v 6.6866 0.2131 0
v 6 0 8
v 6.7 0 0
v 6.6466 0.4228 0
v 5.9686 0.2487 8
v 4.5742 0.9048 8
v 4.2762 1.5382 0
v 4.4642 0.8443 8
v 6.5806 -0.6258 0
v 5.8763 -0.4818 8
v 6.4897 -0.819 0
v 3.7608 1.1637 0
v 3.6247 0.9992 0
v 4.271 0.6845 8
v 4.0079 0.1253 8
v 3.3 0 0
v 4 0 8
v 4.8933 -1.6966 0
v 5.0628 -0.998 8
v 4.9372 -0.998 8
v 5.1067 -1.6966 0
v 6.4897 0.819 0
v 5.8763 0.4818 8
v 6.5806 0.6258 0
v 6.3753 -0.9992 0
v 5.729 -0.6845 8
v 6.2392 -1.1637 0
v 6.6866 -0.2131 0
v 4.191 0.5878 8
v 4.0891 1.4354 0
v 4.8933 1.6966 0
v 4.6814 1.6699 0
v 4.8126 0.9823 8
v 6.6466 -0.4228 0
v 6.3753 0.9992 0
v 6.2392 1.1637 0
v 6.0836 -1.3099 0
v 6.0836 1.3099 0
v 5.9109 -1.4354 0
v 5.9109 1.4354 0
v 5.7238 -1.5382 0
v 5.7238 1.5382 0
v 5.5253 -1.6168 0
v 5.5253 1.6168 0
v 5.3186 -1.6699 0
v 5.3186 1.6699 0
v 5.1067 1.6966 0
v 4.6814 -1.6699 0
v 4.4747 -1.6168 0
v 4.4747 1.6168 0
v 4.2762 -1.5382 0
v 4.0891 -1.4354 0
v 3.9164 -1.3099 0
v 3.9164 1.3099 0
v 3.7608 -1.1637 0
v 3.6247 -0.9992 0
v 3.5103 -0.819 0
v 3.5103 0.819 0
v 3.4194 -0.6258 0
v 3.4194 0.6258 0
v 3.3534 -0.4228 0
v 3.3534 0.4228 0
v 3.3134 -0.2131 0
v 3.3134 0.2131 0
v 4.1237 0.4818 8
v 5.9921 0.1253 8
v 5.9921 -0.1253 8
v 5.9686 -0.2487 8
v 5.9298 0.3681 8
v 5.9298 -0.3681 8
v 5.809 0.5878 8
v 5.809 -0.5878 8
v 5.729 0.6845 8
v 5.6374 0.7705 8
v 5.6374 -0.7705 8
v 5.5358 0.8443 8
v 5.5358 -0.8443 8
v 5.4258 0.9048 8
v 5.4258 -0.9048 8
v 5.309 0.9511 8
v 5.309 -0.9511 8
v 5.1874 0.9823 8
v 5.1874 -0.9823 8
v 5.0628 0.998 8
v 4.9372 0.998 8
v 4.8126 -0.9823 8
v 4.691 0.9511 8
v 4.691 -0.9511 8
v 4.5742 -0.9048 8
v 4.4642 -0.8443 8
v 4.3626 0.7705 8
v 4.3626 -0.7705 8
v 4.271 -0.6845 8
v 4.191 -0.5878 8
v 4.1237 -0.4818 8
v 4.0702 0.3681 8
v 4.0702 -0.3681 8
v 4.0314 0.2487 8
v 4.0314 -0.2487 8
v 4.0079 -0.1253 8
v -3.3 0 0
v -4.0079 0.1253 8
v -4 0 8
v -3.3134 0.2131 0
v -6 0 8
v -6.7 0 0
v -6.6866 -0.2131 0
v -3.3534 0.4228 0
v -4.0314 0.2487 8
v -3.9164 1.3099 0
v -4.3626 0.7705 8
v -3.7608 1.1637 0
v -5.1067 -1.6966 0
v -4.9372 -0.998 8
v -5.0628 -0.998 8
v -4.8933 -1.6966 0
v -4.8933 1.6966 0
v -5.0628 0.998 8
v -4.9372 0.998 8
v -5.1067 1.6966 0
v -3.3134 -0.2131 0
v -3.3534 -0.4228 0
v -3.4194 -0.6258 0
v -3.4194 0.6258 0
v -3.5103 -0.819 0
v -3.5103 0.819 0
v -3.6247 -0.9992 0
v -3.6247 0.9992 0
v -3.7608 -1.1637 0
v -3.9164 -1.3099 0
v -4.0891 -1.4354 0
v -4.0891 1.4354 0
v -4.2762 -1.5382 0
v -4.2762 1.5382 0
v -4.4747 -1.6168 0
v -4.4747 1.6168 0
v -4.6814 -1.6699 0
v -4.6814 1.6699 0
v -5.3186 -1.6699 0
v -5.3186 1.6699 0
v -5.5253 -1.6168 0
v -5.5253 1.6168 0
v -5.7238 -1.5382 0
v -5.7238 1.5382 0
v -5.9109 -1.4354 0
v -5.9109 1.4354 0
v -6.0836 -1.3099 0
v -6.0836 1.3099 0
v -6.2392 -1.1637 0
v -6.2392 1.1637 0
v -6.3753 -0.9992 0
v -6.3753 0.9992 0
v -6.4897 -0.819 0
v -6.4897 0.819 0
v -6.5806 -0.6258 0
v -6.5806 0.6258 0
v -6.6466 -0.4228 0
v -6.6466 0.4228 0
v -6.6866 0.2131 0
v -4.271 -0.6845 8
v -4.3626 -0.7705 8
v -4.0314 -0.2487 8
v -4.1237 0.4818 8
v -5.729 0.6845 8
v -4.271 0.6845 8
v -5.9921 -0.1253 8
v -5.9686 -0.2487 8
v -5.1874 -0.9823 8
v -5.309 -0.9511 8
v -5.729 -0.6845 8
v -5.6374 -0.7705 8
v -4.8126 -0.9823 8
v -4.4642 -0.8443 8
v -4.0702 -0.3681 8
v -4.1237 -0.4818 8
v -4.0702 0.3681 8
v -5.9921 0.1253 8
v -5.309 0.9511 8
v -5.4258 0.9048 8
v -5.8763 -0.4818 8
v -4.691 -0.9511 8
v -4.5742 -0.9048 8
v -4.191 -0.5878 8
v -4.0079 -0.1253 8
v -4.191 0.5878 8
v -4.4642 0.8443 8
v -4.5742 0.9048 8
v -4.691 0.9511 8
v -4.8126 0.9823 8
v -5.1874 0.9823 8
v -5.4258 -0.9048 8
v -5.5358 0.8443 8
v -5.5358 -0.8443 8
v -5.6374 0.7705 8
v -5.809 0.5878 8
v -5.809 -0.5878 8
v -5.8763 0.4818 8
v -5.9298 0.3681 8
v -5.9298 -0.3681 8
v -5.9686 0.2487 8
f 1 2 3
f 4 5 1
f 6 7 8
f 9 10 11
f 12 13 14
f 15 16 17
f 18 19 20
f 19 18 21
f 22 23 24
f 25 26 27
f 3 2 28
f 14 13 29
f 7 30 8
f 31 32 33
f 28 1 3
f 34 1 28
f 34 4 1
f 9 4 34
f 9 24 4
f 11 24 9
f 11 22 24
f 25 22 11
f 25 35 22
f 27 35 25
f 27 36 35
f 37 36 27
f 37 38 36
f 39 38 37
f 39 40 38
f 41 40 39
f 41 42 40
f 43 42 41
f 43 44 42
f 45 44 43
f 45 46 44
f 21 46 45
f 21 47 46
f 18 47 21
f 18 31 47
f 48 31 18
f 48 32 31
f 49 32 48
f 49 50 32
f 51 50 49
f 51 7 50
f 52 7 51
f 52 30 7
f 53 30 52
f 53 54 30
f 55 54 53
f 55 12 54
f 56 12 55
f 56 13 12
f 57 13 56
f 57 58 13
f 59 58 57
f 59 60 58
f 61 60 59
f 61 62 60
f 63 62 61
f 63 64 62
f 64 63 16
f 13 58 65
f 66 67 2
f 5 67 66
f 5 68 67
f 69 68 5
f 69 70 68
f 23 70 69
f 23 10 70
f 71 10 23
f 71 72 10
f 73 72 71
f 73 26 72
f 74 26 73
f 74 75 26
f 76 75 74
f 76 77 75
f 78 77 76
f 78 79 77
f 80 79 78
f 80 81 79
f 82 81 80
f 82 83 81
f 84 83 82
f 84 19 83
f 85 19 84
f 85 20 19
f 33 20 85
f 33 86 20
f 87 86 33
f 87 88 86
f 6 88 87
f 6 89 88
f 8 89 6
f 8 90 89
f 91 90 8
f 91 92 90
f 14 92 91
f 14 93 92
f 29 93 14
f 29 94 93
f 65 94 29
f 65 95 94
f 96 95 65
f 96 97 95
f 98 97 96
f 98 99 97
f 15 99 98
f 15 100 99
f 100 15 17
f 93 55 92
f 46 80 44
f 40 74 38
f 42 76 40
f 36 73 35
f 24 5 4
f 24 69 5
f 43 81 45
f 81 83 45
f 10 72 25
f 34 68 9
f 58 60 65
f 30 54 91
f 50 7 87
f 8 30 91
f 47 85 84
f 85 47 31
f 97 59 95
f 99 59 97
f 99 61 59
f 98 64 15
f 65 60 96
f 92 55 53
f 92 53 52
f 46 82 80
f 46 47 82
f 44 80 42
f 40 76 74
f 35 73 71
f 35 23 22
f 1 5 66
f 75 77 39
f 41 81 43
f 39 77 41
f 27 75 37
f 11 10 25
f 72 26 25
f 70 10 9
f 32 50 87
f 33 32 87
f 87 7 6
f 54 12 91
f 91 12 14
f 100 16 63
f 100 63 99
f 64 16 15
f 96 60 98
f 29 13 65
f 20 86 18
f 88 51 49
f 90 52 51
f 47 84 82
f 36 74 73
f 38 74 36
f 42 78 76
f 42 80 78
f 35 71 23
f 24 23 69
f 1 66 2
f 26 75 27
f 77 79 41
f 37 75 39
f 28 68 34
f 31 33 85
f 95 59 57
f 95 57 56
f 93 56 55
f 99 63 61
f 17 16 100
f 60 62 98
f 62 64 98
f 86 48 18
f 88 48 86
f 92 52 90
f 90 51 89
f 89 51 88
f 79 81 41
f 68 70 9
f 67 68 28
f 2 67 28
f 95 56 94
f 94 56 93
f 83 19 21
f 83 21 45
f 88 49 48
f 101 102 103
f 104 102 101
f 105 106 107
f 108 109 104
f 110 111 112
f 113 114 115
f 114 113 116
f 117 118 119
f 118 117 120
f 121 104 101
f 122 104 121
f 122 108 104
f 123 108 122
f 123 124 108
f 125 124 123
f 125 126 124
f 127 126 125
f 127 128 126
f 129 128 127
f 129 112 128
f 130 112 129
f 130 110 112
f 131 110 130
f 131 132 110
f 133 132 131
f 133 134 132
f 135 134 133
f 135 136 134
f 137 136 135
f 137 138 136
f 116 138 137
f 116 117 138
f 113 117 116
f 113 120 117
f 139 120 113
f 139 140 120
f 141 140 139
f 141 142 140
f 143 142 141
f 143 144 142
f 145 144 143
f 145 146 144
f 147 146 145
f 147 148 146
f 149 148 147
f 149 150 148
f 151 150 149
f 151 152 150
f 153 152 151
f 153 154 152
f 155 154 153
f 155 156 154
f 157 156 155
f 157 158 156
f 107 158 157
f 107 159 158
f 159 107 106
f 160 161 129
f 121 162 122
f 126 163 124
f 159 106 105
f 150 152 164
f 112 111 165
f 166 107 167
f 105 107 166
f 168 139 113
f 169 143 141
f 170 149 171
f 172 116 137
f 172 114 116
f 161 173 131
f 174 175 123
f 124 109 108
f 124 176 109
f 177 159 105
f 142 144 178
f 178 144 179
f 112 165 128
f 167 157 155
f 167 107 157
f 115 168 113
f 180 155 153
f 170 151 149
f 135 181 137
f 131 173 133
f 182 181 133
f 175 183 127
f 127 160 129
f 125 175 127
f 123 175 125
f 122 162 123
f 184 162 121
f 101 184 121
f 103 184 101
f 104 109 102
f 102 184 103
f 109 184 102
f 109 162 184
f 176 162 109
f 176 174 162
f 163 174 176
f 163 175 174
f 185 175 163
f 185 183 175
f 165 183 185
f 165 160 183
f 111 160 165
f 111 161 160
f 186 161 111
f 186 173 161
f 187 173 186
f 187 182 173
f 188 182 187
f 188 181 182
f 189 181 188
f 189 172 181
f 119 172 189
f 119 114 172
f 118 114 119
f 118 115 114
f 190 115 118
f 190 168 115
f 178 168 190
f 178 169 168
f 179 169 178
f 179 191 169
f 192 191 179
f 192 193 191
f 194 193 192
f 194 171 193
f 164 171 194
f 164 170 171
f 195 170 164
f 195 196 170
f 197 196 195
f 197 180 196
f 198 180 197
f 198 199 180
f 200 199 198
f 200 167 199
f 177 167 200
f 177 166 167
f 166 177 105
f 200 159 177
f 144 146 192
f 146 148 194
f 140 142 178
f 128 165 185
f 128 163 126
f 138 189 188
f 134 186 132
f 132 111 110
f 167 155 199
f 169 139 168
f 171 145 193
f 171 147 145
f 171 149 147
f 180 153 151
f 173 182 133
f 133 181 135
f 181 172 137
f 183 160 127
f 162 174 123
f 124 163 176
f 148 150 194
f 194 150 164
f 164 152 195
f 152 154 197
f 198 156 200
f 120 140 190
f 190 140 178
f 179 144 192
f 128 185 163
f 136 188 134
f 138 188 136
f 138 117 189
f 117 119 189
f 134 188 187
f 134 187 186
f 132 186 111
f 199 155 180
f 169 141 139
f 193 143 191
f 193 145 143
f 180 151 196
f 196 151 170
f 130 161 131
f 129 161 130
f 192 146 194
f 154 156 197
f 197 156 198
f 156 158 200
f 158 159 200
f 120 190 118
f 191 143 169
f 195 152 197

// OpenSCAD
// Pegs which connect the Y gyro to the outer frame and allows it to spin
translate([5,0,4]) rotate([0,0,0])
    cylinder(d1=3.4, d2=2, h=8, center=true, $fn=50);
translate([-5,0,4]) rotate([0,0,0])
    cylinder(d1=3.4, d2=2, h=8, center=true, $fn=50);
